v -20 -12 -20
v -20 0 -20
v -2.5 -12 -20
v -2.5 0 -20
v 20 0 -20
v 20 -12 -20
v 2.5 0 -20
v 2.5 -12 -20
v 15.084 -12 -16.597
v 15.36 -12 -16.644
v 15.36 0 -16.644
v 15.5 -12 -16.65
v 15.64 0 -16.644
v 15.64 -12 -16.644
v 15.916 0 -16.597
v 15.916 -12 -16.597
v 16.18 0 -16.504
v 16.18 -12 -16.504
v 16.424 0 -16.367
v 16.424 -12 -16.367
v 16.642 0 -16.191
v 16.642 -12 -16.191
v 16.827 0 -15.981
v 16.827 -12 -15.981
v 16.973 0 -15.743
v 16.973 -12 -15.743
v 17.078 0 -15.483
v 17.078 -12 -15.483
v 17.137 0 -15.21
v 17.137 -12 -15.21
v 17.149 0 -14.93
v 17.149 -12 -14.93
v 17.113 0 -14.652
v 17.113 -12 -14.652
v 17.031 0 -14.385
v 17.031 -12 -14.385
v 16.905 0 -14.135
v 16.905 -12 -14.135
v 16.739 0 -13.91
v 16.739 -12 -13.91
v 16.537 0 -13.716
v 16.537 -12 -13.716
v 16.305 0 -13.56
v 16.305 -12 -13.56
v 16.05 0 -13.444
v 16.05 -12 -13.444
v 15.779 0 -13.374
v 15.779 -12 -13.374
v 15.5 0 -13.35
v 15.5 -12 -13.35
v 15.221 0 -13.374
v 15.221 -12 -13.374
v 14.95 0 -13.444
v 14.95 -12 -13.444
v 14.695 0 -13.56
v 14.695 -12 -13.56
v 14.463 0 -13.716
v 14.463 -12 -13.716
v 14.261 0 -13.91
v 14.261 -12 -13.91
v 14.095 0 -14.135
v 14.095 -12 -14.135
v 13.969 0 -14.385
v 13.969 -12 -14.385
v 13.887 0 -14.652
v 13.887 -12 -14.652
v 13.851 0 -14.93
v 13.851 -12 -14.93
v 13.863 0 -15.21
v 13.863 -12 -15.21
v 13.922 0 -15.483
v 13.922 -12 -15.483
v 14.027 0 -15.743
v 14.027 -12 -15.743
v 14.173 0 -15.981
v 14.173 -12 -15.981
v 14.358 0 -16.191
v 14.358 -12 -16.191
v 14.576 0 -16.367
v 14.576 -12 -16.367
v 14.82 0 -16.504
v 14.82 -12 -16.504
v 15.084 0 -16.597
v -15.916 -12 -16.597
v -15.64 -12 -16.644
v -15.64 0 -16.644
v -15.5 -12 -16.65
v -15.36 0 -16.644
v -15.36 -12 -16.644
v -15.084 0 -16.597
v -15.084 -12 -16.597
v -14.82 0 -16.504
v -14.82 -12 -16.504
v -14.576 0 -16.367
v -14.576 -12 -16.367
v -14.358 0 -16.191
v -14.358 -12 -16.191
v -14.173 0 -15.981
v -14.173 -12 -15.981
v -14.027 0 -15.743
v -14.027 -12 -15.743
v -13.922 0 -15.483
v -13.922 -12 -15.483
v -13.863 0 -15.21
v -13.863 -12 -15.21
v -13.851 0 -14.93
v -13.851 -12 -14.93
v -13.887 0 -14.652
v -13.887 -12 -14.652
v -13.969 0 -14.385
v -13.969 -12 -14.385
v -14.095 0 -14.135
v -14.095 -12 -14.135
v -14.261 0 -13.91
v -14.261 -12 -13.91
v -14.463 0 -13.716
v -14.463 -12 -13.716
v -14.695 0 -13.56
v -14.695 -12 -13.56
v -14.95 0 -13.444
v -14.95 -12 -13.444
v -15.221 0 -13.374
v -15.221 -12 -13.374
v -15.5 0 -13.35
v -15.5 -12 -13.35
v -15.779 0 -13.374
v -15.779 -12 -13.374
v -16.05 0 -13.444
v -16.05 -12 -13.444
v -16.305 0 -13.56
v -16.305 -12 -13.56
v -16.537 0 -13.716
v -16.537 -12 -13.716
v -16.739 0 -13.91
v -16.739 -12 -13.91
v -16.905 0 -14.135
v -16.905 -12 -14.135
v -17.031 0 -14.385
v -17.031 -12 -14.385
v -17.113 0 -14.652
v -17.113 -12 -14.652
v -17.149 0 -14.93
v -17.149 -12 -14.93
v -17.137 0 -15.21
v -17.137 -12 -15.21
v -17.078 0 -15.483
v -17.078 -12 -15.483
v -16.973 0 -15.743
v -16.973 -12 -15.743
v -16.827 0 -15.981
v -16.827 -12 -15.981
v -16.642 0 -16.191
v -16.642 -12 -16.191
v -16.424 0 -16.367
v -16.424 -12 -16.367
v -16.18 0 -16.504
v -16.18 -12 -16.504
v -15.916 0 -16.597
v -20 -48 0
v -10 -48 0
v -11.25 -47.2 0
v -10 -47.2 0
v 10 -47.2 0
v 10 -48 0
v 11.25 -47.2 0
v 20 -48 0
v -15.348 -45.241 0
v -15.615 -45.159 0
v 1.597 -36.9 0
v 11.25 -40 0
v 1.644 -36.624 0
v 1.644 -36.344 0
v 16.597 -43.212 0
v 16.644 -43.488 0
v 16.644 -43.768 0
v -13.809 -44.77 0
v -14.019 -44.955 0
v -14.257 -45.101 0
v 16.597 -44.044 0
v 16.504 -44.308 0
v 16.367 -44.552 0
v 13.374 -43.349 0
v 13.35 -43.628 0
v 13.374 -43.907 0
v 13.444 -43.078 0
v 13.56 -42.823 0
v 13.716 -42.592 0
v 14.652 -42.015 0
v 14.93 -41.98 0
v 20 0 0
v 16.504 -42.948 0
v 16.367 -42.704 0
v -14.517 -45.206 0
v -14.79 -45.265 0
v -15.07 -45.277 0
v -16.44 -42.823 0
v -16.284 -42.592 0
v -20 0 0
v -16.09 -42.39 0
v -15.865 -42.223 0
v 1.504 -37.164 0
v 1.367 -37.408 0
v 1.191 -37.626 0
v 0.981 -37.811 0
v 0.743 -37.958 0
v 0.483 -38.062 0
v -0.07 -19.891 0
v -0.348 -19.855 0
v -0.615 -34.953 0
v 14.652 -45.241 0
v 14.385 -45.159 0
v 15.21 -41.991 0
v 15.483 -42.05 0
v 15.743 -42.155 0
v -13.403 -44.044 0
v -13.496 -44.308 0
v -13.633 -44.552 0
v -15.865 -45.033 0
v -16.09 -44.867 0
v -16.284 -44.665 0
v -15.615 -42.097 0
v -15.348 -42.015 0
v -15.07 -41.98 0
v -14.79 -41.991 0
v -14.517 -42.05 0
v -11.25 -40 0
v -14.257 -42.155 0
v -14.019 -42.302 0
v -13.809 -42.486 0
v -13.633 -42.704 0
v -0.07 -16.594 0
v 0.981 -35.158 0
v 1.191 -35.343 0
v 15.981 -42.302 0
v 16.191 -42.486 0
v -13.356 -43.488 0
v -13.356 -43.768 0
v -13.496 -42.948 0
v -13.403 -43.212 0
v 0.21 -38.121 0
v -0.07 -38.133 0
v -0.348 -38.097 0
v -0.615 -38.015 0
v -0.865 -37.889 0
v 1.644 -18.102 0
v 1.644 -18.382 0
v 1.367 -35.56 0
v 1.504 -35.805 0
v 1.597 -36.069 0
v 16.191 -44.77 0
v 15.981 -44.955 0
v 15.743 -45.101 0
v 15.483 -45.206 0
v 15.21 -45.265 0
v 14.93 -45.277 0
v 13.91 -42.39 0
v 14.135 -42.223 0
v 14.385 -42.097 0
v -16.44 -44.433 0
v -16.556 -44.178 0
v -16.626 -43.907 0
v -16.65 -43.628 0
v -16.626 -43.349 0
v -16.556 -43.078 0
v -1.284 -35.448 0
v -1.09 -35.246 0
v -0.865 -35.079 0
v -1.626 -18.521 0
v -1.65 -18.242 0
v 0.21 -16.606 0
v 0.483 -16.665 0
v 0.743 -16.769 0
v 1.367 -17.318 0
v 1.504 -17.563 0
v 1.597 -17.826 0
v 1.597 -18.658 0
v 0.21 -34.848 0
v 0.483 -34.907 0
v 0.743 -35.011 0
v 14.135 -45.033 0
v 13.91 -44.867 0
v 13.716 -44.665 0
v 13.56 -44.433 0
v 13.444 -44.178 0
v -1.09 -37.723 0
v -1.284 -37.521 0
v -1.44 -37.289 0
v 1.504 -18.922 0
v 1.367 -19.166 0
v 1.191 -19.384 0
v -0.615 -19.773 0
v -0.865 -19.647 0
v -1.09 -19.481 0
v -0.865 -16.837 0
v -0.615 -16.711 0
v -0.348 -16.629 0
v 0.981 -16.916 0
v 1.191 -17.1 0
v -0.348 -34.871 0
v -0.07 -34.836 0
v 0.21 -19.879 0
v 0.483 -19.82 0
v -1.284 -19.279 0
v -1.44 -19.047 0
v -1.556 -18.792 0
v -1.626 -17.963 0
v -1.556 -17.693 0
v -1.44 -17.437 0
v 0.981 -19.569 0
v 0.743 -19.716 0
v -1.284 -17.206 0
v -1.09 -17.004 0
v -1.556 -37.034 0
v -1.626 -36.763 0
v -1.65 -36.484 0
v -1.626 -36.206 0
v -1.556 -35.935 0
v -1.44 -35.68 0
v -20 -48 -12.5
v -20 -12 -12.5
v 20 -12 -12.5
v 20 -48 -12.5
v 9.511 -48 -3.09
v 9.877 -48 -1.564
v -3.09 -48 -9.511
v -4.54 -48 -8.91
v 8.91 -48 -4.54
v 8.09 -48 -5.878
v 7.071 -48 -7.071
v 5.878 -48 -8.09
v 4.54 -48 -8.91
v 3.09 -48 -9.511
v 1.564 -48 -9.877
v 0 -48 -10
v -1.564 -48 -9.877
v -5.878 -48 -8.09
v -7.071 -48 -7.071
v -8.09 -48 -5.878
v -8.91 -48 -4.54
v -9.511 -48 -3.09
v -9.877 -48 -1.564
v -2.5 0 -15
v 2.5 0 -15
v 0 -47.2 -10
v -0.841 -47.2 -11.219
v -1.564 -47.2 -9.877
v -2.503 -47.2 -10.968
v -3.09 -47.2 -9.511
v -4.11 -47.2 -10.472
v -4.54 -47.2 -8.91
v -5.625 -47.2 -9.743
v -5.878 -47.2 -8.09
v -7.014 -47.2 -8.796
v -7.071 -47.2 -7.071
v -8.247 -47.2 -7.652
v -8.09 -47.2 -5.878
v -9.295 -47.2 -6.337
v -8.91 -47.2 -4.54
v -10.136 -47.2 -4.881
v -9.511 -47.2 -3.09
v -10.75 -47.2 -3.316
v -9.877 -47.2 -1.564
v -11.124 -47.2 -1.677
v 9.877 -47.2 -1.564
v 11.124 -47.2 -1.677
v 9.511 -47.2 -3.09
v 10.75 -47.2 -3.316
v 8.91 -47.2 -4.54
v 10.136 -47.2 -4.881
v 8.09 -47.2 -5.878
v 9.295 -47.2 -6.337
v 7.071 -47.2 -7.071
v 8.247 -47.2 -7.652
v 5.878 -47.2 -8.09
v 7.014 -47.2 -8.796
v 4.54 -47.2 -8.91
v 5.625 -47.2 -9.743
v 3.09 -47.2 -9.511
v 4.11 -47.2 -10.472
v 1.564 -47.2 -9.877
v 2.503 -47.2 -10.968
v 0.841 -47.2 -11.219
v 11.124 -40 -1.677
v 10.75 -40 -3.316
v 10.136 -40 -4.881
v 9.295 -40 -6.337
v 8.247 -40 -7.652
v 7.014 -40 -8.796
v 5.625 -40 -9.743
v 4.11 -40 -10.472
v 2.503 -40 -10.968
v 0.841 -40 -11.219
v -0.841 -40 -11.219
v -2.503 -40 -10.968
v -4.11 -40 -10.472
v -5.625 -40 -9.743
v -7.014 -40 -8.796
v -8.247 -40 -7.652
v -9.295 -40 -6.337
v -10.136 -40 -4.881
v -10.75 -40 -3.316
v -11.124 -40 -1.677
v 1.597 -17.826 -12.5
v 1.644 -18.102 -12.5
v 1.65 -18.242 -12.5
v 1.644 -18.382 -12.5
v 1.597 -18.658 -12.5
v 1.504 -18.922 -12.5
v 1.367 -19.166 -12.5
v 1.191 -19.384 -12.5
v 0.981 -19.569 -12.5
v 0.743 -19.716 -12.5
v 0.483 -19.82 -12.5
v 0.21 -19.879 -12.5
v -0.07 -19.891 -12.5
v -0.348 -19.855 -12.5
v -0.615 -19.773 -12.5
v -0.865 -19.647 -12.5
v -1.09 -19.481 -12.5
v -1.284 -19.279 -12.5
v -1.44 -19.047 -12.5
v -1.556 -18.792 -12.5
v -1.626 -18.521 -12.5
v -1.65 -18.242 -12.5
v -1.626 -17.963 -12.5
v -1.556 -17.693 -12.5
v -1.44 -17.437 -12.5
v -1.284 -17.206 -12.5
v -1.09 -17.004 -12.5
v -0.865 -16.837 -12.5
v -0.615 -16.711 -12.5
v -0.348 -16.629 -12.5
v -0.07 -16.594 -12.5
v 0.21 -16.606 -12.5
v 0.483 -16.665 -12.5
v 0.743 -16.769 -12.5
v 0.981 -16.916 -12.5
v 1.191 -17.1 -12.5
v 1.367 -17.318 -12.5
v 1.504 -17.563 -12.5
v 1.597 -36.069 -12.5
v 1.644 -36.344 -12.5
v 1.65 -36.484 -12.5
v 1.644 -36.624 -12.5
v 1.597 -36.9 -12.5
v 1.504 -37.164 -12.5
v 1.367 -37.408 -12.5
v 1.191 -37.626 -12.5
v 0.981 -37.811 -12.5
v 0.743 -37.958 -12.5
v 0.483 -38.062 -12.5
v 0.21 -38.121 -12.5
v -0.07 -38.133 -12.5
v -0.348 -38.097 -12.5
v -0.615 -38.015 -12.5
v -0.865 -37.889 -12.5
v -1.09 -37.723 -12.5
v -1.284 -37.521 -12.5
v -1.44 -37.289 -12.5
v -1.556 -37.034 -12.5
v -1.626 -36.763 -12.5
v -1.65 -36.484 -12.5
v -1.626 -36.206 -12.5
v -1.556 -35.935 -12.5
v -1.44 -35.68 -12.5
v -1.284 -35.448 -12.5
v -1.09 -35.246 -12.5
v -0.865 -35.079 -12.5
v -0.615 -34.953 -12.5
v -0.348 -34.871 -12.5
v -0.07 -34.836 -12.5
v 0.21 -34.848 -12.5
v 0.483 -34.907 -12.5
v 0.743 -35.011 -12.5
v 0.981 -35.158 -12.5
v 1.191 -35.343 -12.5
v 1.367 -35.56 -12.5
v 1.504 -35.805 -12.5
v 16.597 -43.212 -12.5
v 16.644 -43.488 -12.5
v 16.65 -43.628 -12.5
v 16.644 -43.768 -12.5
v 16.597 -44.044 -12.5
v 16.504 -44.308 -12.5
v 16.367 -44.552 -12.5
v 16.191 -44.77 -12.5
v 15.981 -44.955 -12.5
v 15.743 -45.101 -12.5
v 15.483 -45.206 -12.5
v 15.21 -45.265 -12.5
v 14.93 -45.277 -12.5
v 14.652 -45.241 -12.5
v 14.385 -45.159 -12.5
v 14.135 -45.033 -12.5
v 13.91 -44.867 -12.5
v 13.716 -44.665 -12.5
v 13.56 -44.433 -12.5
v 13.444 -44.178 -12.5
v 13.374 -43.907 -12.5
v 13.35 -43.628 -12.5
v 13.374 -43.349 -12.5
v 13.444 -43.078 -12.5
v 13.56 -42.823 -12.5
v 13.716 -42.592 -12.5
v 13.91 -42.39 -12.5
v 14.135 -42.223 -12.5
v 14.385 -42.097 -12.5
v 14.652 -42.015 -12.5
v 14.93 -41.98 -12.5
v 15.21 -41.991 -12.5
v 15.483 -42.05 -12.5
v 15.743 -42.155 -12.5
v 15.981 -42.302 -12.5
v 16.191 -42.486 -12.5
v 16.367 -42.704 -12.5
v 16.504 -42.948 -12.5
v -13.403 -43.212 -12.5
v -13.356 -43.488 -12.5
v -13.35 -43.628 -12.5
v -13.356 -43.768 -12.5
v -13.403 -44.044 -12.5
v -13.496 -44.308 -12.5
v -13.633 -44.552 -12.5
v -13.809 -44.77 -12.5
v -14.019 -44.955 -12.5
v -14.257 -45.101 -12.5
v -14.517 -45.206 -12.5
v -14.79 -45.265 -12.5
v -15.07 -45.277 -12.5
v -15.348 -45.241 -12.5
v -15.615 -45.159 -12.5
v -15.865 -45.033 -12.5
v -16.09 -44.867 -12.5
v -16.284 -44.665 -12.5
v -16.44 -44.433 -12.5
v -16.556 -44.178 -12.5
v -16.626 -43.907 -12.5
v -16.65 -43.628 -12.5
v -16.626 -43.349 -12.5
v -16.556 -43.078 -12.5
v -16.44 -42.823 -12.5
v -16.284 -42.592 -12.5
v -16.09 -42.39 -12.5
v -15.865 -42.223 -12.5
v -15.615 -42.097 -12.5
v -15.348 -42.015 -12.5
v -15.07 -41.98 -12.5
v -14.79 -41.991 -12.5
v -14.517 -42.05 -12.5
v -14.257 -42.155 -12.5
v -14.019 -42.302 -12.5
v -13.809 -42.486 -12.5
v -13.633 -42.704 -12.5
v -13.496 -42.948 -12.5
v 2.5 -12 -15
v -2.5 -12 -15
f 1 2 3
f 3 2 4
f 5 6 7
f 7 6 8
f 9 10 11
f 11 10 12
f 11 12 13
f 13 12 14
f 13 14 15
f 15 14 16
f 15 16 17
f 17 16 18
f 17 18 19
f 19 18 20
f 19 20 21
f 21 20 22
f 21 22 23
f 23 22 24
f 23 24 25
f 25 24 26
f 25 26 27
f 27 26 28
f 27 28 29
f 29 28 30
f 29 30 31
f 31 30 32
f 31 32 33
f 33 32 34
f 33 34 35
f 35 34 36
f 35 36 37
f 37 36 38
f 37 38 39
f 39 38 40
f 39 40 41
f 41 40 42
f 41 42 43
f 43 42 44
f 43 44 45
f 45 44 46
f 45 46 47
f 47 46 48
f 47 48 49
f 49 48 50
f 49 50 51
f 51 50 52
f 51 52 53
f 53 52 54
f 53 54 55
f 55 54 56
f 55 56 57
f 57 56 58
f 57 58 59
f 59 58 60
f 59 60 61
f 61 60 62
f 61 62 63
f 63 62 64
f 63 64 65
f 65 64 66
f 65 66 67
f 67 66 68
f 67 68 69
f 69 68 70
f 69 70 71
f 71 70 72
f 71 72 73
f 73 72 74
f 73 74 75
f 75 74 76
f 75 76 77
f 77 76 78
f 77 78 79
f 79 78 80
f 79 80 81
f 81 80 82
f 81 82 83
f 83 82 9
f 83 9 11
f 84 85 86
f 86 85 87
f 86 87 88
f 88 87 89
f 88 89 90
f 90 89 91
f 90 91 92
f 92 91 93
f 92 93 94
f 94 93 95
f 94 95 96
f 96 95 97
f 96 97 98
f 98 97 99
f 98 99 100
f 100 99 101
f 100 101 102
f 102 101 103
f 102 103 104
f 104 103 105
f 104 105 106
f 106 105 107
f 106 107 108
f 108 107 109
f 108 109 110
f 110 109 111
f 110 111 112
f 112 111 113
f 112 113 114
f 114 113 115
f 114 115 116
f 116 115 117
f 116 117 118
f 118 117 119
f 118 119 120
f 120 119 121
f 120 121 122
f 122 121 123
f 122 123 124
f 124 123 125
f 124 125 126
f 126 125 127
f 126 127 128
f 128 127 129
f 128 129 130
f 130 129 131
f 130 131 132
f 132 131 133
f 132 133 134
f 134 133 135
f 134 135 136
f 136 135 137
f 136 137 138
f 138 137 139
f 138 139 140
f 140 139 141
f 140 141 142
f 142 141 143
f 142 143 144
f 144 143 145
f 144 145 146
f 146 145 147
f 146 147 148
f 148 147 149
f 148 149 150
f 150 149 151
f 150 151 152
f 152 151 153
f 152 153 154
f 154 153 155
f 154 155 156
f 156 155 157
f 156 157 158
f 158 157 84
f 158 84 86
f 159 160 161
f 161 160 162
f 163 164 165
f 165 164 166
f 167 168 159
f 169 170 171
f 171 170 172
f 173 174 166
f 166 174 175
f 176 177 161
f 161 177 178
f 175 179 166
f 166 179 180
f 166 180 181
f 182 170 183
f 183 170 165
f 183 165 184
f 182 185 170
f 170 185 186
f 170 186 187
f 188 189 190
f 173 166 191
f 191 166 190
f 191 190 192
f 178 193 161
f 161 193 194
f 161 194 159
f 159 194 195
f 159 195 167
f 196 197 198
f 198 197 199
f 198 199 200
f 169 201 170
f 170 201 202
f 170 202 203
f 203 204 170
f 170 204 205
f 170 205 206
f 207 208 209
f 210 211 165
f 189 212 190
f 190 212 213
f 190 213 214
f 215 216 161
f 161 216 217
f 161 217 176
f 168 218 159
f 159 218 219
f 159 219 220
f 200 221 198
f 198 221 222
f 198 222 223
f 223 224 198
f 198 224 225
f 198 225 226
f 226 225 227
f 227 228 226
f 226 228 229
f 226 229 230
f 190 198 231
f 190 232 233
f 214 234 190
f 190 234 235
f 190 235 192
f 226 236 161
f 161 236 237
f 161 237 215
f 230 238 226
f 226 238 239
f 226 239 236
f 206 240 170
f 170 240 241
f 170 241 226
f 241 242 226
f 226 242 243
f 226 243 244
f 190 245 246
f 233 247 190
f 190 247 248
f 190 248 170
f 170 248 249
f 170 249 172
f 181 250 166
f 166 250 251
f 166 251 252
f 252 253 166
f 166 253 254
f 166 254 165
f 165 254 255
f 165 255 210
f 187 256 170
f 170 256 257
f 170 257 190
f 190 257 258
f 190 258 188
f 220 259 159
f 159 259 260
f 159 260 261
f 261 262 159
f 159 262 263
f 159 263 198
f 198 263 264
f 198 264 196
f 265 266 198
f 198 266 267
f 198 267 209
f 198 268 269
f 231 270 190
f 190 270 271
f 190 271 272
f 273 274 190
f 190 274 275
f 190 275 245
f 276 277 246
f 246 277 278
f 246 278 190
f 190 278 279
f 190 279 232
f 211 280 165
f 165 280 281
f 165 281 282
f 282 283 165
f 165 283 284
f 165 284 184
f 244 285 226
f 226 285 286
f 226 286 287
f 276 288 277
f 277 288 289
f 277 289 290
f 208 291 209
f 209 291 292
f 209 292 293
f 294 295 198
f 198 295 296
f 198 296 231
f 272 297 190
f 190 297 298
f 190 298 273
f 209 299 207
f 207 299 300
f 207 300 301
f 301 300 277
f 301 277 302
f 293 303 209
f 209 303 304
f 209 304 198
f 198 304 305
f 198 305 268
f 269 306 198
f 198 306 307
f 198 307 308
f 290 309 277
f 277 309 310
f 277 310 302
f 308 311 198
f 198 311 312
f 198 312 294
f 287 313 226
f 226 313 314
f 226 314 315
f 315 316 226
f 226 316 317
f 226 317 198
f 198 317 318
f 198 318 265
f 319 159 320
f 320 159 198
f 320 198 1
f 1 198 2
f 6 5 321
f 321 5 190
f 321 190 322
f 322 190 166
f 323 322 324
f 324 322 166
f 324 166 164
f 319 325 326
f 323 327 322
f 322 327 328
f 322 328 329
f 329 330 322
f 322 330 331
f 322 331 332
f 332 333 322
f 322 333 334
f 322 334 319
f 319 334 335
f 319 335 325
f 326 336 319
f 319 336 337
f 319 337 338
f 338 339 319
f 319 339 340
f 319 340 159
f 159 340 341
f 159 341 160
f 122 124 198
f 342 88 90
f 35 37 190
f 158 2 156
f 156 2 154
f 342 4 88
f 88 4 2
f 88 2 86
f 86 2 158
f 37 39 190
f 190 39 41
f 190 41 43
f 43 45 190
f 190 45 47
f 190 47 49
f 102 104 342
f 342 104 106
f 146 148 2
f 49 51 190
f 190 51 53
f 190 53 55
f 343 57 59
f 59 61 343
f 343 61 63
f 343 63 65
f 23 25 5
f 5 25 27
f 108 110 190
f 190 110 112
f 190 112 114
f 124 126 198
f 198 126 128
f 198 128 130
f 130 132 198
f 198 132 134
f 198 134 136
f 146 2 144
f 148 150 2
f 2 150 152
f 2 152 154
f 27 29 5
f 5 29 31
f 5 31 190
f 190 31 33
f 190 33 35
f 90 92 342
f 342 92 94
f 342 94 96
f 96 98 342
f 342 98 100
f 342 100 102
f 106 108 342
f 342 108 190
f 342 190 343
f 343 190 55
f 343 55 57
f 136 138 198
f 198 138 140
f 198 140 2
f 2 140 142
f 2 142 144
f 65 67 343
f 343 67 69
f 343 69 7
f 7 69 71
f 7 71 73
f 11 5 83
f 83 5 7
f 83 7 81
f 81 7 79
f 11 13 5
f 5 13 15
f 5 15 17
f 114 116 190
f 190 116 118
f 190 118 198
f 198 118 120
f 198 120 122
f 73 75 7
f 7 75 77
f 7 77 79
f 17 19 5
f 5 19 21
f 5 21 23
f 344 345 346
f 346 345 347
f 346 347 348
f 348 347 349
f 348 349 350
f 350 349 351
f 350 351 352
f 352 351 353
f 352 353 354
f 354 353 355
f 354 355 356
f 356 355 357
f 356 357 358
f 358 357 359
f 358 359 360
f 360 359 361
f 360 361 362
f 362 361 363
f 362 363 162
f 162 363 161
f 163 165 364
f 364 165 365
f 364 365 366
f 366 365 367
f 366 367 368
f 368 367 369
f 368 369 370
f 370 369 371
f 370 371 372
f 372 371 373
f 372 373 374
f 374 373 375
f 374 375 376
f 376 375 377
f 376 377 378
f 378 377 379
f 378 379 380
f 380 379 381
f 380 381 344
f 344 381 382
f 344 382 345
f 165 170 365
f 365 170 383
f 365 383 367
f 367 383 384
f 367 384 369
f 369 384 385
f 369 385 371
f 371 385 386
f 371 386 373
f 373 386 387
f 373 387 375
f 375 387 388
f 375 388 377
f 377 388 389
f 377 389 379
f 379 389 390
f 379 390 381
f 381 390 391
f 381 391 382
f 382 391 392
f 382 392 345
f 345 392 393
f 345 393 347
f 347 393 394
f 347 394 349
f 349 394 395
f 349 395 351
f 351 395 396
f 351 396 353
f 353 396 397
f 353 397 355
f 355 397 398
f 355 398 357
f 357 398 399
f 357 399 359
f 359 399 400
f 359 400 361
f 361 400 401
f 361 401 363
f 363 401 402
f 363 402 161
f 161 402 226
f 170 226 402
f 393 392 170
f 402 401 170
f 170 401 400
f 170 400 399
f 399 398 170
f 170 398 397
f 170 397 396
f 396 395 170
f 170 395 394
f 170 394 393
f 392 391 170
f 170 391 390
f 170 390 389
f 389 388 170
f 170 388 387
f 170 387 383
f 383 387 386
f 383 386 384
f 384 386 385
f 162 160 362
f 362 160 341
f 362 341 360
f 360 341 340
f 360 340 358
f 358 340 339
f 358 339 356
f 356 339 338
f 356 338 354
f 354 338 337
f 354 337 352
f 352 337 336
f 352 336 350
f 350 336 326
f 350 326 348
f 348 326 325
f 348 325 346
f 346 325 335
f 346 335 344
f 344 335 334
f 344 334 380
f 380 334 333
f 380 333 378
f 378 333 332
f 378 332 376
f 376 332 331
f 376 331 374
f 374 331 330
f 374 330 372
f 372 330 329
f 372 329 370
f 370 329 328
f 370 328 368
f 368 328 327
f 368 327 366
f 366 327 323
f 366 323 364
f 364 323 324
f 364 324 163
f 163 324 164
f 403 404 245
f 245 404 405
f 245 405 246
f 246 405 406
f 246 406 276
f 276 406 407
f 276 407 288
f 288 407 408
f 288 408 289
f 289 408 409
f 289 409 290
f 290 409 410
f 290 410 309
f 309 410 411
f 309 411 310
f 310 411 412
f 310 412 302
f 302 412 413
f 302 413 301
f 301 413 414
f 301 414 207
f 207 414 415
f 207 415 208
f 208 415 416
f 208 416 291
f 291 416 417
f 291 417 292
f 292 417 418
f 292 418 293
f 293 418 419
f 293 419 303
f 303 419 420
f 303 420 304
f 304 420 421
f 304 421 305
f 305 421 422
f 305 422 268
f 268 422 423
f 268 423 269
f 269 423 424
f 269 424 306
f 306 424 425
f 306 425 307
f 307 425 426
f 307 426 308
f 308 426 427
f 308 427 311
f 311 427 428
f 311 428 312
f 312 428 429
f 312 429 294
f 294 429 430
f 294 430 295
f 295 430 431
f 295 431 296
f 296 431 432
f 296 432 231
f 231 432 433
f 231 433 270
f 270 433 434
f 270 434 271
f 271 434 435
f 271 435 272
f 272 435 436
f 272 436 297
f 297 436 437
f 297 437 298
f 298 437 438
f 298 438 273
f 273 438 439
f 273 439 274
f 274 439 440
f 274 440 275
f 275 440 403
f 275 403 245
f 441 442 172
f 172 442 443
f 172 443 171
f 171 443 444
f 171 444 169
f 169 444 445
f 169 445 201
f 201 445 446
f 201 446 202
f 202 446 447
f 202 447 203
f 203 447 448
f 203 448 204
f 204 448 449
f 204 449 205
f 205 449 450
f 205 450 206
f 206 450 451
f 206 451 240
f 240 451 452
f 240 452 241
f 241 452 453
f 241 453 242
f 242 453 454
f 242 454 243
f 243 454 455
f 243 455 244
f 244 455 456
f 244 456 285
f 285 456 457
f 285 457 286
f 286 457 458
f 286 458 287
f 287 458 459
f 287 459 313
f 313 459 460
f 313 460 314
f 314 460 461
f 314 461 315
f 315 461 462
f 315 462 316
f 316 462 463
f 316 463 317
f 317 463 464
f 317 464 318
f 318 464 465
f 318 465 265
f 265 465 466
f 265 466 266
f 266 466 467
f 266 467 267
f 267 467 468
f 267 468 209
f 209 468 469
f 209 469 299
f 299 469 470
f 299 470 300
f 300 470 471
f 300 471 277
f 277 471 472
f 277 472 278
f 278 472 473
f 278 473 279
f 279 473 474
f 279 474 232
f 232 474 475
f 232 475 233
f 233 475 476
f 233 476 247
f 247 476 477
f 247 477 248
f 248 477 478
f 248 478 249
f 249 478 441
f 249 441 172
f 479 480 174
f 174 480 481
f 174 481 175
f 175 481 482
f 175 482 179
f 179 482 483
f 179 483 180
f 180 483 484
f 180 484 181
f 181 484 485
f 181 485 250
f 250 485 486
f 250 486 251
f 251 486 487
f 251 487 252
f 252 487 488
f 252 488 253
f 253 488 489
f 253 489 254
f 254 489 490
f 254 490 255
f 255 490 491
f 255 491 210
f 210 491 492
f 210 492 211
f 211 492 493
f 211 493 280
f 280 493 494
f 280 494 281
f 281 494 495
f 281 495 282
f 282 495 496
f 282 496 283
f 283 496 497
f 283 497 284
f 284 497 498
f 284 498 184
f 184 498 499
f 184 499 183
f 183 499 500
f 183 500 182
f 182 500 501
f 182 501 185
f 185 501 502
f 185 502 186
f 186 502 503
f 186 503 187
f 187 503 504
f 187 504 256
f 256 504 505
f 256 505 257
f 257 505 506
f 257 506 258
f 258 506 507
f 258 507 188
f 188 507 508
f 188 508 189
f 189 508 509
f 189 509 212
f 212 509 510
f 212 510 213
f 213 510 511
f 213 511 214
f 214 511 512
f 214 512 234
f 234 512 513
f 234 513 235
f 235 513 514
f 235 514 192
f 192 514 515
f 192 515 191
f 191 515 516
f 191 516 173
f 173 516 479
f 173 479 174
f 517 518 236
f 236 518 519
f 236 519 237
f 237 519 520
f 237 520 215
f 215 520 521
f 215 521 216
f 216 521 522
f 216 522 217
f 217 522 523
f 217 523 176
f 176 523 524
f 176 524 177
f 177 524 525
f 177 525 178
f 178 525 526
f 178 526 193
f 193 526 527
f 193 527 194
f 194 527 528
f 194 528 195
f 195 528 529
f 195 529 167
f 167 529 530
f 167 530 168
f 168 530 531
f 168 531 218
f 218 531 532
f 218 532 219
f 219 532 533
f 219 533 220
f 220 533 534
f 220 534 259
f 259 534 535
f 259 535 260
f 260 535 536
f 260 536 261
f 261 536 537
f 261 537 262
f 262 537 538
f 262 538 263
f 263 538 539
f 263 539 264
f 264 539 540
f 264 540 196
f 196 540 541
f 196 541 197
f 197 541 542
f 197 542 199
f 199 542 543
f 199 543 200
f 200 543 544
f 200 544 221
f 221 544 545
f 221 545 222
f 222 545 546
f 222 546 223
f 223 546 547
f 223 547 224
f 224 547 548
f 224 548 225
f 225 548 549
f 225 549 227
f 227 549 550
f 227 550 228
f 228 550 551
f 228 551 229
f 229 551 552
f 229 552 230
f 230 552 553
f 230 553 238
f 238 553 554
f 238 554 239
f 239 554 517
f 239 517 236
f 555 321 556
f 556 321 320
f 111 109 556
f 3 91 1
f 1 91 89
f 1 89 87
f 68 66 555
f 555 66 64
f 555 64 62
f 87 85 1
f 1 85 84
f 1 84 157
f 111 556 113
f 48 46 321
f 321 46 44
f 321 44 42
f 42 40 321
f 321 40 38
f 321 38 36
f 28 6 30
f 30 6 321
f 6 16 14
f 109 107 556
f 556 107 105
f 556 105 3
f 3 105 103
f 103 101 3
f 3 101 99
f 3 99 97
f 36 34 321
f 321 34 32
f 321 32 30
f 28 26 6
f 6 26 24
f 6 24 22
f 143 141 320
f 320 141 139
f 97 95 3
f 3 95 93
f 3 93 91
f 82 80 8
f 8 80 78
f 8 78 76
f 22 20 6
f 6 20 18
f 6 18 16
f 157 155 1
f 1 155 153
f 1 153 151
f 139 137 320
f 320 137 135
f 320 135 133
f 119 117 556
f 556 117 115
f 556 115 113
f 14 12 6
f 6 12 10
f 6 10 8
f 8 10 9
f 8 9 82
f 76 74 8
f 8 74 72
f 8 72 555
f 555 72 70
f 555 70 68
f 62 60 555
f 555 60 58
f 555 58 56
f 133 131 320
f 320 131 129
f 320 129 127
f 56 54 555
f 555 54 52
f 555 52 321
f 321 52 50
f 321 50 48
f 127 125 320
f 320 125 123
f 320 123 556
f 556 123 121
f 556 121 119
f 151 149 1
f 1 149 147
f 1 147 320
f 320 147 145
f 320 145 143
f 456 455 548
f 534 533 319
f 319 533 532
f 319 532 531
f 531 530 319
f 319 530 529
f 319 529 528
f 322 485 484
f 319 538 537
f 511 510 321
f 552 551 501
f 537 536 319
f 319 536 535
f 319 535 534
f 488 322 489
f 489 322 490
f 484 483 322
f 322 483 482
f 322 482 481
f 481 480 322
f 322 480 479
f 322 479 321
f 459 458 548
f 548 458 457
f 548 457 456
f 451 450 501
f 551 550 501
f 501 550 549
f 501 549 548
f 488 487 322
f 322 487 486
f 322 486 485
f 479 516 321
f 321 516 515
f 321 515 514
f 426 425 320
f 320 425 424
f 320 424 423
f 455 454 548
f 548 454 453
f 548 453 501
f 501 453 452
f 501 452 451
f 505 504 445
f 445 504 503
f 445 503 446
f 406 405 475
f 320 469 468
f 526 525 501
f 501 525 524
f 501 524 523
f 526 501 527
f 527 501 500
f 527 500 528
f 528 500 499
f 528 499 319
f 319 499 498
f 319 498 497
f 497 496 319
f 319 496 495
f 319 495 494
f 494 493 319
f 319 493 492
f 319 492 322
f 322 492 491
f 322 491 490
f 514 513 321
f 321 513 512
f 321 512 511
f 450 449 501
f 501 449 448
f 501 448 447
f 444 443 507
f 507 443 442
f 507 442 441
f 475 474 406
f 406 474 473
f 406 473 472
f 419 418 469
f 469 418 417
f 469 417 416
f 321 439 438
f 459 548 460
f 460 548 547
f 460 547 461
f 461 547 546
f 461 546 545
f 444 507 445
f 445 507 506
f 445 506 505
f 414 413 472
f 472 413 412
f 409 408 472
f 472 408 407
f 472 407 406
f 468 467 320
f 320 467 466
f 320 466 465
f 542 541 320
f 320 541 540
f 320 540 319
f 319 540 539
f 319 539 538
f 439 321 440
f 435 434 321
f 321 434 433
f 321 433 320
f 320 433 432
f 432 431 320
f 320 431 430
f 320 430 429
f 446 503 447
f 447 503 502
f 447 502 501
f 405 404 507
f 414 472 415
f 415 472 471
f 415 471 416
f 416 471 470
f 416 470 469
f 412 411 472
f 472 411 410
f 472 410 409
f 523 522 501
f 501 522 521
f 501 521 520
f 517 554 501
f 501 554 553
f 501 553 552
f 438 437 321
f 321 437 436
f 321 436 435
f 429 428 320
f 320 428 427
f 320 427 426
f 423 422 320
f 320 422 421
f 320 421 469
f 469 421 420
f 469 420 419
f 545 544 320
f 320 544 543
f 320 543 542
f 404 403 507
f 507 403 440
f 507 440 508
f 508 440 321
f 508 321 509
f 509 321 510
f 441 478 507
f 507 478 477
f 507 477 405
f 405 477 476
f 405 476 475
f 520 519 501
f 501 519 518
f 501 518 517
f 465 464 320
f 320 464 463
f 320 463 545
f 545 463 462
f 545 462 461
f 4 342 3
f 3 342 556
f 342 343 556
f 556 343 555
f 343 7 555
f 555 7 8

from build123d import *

# Parameters (mm, degrees)
SKETCH1_W             = 40
SKETCH1_H             = 40
BOSS_EXTRUDE1_DEPTH   = 48
M4X0_7_TAPPED_HOLE1_D = 3.3
SKETCH10_W            = 40
SKETCH10_H            = 20
CUT_EXTRUDE4_DEPTH    = 49
SKETCH11_W            = 11.25
SKETCH11_H            = 7.2
CUT_EXTRUDE5_REACH    = 50
SKETCH12_R            = 10
M4X0_7_TAPPED_HOLE2_D = 3.3
SKETCH15_W            = 40
SKETCH15_H            = 7.5
CUT_EXTRUDE6_DEPTH    = 36
SKETCH16_W            = 5
SKETCH16_H            = 5
CUT_EXTRUDE7_DEPTH    = 13


with BuildPart() as part:
    # Sketch1 → Boss-Extrude1 (new body)
    with BuildSketch(Plane(origin=(0, 0, 0), x_dir=(1, 0, 0), z_dir=(0, 1, 0))):
        Rectangle(SKETCH1_W, SKETCH1_H)
    extrude(amount=-BOSS_EXTRUDE1_DEPTH)

    # M4x0.7 Tapped Hole1 (through all)
    with Locations(Plane(origin=(0, 0, 0), x_dir=(1, 0, 0), z_dir=(0, 1, 0))):
        with Locations((-15.5, 15), (15.5, 15), (15.5, -15), (-15.5, -15)):
            Hole(M4X0_7_TAPPED_HOLE1_D / 2)

    # Sketch10 → Cut-Extrude4 (cut, through all)
    with BuildSketch(Plane(origin=(0, 0, 0), x_dir=(1, 0, 0), z_dir=(0, 1, 0))):
        with Locations((0, -10)):
            Rectangle(SKETCH10_W, SKETCH10_H)
    extrude(amount=-CUT_EXTRUDE4_DEPTH, mode=Mode.SUBTRACT)

    # Sketch11 → Cut-Revolve2 (revolve, cut)
    with BuildSketch(Plane.XY):
        with Locations((5.625, -43.6)):
            Rectangle(SKETCH11_W, SKETCH11_H)
    revolve(axis=Axis((0, 0, 0), (0, -1, 0)), mode=Mode.SUBTRACT)

    # Sketch12 → Cut-Extrude5 (cut, up to next)
    with BuildSketch(Plane.XZ.offset(48), mode=Mode.PRIVATE) as cut_extrude5_sk1:
        Circle(SKETCH12_R)
    cut_extrude5_tool1 = extrude(cut_extrude5_sk1.sketch, amount=-CUT_EXTRUDE5_REACH, mode=Mode.PRIVATE) & part.part
    add(cut_extrude5_tool1.solids().sort_by_distance((0, -48, 0))[0], mode=Mode.SUBTRACT)

    # M4x0.7 Tapped Hole2 (through all)
    with Locations(Plane(origin=(0, 0, -20), x_dir=(-1, 0, 0), z_dir=(0, 0, -1))):
        with Locations((15, -43.628125), (-15, -43.628125), (0, -36.484375), (0, -18.2421875)):
            Hole(M4X0_7_TAPPED_HOLE2_D / 2)

    # Sketch15 → Cut-Extrude6 (cut)
    with BuildSketch(Plane.XZ.offset(48)):
        with Locations((0, -16.25)):
            Rectangle(SKETCH15_W, SKETCH15_H)
    extrude(amount=-CUT_EXTRUDE6_DEPTH, mode=Mode.SUBTRACT)

    # Sketch16 → Cut-Extrude7 (cut, through all)
    with BuildSketch(Plane.XZ.offset(12)):
        with Locations((0, -17.5)):
            Rectangle(SKETCH16_W, SKETCH16_H)
    extrude(amount=-CUT_EXTRUDE7_DEPTH, mode=Mode.SUBTRACT)


solid = part.part
